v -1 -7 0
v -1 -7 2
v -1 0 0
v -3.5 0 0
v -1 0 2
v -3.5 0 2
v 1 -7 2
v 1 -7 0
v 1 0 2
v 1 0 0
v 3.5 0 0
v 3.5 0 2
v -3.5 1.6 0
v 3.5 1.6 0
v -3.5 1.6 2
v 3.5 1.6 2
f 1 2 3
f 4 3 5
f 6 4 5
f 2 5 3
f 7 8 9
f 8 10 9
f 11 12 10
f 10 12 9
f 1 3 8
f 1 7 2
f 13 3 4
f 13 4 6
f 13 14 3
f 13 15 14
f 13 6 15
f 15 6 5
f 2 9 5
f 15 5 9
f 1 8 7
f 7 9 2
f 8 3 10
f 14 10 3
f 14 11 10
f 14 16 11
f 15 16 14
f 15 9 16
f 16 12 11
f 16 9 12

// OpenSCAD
$fn = 50;

difference() {
	union() {
		translate(v = [0, 0, 0]) {
			rotate(a = [0, 0, 0]) {
				difference() {
					union() {
						translate(v = [-3.5, -7.0, 0]) {
							cube(size = [7.0, 8.6, 2.0]);
						}
					}
					union() {
						translate(v = [-3.6, -7.1, -0.1]) {
							cube(size = [2.6, 7.1, 2.2]);
						}
						translate(v = [1.0, -7.1, -0.1]) {
							cube(size = [2.6, 7.1, 2.2]);
						}
					}
				}
			}
		}
	}
	union();
}
